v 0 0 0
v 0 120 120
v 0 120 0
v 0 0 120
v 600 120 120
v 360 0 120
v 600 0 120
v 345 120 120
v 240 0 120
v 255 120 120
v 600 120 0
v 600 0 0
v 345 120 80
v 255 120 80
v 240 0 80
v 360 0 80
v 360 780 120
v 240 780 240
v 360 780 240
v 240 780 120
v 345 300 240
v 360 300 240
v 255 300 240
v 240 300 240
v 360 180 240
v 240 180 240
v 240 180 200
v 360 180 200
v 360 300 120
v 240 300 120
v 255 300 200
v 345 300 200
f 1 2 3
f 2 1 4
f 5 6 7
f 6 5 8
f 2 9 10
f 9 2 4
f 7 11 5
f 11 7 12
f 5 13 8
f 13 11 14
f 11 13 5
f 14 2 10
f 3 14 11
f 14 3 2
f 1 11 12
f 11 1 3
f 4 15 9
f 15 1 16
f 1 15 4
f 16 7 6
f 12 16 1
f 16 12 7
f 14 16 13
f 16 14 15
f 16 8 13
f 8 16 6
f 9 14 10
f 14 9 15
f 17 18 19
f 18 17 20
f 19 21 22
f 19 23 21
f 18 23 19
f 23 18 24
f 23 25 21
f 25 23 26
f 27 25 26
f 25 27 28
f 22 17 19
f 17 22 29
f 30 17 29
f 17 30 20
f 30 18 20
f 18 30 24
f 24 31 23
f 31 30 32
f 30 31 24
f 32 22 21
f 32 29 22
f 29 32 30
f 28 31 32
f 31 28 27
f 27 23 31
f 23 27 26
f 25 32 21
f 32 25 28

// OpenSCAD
// file: common/board.scad
// board.scad

BOARD_DEFAULT_LENGTH = 600;
BOARD_DEFAULT_WIDTH = 120;
BOARD_DEFAULT_THICKNESS = 120;

function board_get_default_size()
    = [BOARD_DEFAULT_LENGTH, BOARD_DEFAULT_WIDTH, BOARD_DEFAULT_THICKNESS];

module board(size = board_get_default_size(), center = false)
{
    // size[0] is always with the grain
    // size[1] is against the grain
    // size[2] is the board thickness
    cube(size = size, center = center);
}
// main file
// ari_kake.scad

use <common/board.scad>

// ratio of the depth for the tenon thickness
DEPTH_RATIO = 1/3;

DOVETAIL_OFFSET_RATIO = 1/8;

module ari_kake_male(board_size = board_get_default_size())
{
    dovetail_offsetx = board_size[1] * DOVETAIL_OFFSET_RATIO;
    dovetail_thickness = board_size[2] * DEPTH_RATIO;

    cutout_size = [
            board_size[1],
            board_size[1],
            board_size[2] - dovetail_thickness];

    slope_points1 = [
            [0, 0],
            [board_size[1], 0],
            [0, dovetail_offsetx]];

    slope_points2 = [
            [0, 0],
            [board_size[1], 0],
            [0, -dovetail_offsetx]];

    difference()
    {
        board(board_size);

        translate([board_size[0] - cutout_size[0], 0, 0])
            cube(cutout_size);

        translate([board_size[0] - board_size[1], 0, 0])
            linear_extrude(
                    height = board_size[2],
                    center = false,
                    convexity = 0,
                    twist = 0)
                polygon(points = slope_points1);

        translate([board_size[0] - board_size[1], board_size[1], 0])
            linear_extrude(
                    height = board_size[2],
                    center = false,
                    convexity = 0,
                    twist = 0)
                polygon(points = slope_points2);
    }
}

module ari_kake_female(board_size = board_get_default_size())
{
    dovetail_offsetx = board_size[1] * DOVETAIL_OFFSET_RATIO;
    dovetail_thickness = board_size[2] * DEPTH_RATIO;

    points = [
            [0, 0],
            [board_size[1], 0],
            [board_size[1] - dovetail_offsetx, board_size[1]],
            [dovetail_offsetx, board_size[1]]];

    difference()
    {
        board(board_size);

        translate([board_size[0]/2 - board_size[1]/2, 0, board_size[2] - dovetail_thickness])
            linear_extrude(
                    height = dovetail_thickness,
                    center = false,
                    convexity = 0,
                    twist = 0)
                polygon(points = points);
    }
}

module ari_kake_example(board_size = board_get_default_size())
{
    ari_kake_female(board_size);

    translate([board_size[0]/2, board_size[0] - board_size[1], board_size[1]])
        rotate([0, 0, -90])
            translate([-board_size[0]/2, -board_size[1]/2, 0])
                ari_kake_male(board_size);
}

ari_kake_example();
